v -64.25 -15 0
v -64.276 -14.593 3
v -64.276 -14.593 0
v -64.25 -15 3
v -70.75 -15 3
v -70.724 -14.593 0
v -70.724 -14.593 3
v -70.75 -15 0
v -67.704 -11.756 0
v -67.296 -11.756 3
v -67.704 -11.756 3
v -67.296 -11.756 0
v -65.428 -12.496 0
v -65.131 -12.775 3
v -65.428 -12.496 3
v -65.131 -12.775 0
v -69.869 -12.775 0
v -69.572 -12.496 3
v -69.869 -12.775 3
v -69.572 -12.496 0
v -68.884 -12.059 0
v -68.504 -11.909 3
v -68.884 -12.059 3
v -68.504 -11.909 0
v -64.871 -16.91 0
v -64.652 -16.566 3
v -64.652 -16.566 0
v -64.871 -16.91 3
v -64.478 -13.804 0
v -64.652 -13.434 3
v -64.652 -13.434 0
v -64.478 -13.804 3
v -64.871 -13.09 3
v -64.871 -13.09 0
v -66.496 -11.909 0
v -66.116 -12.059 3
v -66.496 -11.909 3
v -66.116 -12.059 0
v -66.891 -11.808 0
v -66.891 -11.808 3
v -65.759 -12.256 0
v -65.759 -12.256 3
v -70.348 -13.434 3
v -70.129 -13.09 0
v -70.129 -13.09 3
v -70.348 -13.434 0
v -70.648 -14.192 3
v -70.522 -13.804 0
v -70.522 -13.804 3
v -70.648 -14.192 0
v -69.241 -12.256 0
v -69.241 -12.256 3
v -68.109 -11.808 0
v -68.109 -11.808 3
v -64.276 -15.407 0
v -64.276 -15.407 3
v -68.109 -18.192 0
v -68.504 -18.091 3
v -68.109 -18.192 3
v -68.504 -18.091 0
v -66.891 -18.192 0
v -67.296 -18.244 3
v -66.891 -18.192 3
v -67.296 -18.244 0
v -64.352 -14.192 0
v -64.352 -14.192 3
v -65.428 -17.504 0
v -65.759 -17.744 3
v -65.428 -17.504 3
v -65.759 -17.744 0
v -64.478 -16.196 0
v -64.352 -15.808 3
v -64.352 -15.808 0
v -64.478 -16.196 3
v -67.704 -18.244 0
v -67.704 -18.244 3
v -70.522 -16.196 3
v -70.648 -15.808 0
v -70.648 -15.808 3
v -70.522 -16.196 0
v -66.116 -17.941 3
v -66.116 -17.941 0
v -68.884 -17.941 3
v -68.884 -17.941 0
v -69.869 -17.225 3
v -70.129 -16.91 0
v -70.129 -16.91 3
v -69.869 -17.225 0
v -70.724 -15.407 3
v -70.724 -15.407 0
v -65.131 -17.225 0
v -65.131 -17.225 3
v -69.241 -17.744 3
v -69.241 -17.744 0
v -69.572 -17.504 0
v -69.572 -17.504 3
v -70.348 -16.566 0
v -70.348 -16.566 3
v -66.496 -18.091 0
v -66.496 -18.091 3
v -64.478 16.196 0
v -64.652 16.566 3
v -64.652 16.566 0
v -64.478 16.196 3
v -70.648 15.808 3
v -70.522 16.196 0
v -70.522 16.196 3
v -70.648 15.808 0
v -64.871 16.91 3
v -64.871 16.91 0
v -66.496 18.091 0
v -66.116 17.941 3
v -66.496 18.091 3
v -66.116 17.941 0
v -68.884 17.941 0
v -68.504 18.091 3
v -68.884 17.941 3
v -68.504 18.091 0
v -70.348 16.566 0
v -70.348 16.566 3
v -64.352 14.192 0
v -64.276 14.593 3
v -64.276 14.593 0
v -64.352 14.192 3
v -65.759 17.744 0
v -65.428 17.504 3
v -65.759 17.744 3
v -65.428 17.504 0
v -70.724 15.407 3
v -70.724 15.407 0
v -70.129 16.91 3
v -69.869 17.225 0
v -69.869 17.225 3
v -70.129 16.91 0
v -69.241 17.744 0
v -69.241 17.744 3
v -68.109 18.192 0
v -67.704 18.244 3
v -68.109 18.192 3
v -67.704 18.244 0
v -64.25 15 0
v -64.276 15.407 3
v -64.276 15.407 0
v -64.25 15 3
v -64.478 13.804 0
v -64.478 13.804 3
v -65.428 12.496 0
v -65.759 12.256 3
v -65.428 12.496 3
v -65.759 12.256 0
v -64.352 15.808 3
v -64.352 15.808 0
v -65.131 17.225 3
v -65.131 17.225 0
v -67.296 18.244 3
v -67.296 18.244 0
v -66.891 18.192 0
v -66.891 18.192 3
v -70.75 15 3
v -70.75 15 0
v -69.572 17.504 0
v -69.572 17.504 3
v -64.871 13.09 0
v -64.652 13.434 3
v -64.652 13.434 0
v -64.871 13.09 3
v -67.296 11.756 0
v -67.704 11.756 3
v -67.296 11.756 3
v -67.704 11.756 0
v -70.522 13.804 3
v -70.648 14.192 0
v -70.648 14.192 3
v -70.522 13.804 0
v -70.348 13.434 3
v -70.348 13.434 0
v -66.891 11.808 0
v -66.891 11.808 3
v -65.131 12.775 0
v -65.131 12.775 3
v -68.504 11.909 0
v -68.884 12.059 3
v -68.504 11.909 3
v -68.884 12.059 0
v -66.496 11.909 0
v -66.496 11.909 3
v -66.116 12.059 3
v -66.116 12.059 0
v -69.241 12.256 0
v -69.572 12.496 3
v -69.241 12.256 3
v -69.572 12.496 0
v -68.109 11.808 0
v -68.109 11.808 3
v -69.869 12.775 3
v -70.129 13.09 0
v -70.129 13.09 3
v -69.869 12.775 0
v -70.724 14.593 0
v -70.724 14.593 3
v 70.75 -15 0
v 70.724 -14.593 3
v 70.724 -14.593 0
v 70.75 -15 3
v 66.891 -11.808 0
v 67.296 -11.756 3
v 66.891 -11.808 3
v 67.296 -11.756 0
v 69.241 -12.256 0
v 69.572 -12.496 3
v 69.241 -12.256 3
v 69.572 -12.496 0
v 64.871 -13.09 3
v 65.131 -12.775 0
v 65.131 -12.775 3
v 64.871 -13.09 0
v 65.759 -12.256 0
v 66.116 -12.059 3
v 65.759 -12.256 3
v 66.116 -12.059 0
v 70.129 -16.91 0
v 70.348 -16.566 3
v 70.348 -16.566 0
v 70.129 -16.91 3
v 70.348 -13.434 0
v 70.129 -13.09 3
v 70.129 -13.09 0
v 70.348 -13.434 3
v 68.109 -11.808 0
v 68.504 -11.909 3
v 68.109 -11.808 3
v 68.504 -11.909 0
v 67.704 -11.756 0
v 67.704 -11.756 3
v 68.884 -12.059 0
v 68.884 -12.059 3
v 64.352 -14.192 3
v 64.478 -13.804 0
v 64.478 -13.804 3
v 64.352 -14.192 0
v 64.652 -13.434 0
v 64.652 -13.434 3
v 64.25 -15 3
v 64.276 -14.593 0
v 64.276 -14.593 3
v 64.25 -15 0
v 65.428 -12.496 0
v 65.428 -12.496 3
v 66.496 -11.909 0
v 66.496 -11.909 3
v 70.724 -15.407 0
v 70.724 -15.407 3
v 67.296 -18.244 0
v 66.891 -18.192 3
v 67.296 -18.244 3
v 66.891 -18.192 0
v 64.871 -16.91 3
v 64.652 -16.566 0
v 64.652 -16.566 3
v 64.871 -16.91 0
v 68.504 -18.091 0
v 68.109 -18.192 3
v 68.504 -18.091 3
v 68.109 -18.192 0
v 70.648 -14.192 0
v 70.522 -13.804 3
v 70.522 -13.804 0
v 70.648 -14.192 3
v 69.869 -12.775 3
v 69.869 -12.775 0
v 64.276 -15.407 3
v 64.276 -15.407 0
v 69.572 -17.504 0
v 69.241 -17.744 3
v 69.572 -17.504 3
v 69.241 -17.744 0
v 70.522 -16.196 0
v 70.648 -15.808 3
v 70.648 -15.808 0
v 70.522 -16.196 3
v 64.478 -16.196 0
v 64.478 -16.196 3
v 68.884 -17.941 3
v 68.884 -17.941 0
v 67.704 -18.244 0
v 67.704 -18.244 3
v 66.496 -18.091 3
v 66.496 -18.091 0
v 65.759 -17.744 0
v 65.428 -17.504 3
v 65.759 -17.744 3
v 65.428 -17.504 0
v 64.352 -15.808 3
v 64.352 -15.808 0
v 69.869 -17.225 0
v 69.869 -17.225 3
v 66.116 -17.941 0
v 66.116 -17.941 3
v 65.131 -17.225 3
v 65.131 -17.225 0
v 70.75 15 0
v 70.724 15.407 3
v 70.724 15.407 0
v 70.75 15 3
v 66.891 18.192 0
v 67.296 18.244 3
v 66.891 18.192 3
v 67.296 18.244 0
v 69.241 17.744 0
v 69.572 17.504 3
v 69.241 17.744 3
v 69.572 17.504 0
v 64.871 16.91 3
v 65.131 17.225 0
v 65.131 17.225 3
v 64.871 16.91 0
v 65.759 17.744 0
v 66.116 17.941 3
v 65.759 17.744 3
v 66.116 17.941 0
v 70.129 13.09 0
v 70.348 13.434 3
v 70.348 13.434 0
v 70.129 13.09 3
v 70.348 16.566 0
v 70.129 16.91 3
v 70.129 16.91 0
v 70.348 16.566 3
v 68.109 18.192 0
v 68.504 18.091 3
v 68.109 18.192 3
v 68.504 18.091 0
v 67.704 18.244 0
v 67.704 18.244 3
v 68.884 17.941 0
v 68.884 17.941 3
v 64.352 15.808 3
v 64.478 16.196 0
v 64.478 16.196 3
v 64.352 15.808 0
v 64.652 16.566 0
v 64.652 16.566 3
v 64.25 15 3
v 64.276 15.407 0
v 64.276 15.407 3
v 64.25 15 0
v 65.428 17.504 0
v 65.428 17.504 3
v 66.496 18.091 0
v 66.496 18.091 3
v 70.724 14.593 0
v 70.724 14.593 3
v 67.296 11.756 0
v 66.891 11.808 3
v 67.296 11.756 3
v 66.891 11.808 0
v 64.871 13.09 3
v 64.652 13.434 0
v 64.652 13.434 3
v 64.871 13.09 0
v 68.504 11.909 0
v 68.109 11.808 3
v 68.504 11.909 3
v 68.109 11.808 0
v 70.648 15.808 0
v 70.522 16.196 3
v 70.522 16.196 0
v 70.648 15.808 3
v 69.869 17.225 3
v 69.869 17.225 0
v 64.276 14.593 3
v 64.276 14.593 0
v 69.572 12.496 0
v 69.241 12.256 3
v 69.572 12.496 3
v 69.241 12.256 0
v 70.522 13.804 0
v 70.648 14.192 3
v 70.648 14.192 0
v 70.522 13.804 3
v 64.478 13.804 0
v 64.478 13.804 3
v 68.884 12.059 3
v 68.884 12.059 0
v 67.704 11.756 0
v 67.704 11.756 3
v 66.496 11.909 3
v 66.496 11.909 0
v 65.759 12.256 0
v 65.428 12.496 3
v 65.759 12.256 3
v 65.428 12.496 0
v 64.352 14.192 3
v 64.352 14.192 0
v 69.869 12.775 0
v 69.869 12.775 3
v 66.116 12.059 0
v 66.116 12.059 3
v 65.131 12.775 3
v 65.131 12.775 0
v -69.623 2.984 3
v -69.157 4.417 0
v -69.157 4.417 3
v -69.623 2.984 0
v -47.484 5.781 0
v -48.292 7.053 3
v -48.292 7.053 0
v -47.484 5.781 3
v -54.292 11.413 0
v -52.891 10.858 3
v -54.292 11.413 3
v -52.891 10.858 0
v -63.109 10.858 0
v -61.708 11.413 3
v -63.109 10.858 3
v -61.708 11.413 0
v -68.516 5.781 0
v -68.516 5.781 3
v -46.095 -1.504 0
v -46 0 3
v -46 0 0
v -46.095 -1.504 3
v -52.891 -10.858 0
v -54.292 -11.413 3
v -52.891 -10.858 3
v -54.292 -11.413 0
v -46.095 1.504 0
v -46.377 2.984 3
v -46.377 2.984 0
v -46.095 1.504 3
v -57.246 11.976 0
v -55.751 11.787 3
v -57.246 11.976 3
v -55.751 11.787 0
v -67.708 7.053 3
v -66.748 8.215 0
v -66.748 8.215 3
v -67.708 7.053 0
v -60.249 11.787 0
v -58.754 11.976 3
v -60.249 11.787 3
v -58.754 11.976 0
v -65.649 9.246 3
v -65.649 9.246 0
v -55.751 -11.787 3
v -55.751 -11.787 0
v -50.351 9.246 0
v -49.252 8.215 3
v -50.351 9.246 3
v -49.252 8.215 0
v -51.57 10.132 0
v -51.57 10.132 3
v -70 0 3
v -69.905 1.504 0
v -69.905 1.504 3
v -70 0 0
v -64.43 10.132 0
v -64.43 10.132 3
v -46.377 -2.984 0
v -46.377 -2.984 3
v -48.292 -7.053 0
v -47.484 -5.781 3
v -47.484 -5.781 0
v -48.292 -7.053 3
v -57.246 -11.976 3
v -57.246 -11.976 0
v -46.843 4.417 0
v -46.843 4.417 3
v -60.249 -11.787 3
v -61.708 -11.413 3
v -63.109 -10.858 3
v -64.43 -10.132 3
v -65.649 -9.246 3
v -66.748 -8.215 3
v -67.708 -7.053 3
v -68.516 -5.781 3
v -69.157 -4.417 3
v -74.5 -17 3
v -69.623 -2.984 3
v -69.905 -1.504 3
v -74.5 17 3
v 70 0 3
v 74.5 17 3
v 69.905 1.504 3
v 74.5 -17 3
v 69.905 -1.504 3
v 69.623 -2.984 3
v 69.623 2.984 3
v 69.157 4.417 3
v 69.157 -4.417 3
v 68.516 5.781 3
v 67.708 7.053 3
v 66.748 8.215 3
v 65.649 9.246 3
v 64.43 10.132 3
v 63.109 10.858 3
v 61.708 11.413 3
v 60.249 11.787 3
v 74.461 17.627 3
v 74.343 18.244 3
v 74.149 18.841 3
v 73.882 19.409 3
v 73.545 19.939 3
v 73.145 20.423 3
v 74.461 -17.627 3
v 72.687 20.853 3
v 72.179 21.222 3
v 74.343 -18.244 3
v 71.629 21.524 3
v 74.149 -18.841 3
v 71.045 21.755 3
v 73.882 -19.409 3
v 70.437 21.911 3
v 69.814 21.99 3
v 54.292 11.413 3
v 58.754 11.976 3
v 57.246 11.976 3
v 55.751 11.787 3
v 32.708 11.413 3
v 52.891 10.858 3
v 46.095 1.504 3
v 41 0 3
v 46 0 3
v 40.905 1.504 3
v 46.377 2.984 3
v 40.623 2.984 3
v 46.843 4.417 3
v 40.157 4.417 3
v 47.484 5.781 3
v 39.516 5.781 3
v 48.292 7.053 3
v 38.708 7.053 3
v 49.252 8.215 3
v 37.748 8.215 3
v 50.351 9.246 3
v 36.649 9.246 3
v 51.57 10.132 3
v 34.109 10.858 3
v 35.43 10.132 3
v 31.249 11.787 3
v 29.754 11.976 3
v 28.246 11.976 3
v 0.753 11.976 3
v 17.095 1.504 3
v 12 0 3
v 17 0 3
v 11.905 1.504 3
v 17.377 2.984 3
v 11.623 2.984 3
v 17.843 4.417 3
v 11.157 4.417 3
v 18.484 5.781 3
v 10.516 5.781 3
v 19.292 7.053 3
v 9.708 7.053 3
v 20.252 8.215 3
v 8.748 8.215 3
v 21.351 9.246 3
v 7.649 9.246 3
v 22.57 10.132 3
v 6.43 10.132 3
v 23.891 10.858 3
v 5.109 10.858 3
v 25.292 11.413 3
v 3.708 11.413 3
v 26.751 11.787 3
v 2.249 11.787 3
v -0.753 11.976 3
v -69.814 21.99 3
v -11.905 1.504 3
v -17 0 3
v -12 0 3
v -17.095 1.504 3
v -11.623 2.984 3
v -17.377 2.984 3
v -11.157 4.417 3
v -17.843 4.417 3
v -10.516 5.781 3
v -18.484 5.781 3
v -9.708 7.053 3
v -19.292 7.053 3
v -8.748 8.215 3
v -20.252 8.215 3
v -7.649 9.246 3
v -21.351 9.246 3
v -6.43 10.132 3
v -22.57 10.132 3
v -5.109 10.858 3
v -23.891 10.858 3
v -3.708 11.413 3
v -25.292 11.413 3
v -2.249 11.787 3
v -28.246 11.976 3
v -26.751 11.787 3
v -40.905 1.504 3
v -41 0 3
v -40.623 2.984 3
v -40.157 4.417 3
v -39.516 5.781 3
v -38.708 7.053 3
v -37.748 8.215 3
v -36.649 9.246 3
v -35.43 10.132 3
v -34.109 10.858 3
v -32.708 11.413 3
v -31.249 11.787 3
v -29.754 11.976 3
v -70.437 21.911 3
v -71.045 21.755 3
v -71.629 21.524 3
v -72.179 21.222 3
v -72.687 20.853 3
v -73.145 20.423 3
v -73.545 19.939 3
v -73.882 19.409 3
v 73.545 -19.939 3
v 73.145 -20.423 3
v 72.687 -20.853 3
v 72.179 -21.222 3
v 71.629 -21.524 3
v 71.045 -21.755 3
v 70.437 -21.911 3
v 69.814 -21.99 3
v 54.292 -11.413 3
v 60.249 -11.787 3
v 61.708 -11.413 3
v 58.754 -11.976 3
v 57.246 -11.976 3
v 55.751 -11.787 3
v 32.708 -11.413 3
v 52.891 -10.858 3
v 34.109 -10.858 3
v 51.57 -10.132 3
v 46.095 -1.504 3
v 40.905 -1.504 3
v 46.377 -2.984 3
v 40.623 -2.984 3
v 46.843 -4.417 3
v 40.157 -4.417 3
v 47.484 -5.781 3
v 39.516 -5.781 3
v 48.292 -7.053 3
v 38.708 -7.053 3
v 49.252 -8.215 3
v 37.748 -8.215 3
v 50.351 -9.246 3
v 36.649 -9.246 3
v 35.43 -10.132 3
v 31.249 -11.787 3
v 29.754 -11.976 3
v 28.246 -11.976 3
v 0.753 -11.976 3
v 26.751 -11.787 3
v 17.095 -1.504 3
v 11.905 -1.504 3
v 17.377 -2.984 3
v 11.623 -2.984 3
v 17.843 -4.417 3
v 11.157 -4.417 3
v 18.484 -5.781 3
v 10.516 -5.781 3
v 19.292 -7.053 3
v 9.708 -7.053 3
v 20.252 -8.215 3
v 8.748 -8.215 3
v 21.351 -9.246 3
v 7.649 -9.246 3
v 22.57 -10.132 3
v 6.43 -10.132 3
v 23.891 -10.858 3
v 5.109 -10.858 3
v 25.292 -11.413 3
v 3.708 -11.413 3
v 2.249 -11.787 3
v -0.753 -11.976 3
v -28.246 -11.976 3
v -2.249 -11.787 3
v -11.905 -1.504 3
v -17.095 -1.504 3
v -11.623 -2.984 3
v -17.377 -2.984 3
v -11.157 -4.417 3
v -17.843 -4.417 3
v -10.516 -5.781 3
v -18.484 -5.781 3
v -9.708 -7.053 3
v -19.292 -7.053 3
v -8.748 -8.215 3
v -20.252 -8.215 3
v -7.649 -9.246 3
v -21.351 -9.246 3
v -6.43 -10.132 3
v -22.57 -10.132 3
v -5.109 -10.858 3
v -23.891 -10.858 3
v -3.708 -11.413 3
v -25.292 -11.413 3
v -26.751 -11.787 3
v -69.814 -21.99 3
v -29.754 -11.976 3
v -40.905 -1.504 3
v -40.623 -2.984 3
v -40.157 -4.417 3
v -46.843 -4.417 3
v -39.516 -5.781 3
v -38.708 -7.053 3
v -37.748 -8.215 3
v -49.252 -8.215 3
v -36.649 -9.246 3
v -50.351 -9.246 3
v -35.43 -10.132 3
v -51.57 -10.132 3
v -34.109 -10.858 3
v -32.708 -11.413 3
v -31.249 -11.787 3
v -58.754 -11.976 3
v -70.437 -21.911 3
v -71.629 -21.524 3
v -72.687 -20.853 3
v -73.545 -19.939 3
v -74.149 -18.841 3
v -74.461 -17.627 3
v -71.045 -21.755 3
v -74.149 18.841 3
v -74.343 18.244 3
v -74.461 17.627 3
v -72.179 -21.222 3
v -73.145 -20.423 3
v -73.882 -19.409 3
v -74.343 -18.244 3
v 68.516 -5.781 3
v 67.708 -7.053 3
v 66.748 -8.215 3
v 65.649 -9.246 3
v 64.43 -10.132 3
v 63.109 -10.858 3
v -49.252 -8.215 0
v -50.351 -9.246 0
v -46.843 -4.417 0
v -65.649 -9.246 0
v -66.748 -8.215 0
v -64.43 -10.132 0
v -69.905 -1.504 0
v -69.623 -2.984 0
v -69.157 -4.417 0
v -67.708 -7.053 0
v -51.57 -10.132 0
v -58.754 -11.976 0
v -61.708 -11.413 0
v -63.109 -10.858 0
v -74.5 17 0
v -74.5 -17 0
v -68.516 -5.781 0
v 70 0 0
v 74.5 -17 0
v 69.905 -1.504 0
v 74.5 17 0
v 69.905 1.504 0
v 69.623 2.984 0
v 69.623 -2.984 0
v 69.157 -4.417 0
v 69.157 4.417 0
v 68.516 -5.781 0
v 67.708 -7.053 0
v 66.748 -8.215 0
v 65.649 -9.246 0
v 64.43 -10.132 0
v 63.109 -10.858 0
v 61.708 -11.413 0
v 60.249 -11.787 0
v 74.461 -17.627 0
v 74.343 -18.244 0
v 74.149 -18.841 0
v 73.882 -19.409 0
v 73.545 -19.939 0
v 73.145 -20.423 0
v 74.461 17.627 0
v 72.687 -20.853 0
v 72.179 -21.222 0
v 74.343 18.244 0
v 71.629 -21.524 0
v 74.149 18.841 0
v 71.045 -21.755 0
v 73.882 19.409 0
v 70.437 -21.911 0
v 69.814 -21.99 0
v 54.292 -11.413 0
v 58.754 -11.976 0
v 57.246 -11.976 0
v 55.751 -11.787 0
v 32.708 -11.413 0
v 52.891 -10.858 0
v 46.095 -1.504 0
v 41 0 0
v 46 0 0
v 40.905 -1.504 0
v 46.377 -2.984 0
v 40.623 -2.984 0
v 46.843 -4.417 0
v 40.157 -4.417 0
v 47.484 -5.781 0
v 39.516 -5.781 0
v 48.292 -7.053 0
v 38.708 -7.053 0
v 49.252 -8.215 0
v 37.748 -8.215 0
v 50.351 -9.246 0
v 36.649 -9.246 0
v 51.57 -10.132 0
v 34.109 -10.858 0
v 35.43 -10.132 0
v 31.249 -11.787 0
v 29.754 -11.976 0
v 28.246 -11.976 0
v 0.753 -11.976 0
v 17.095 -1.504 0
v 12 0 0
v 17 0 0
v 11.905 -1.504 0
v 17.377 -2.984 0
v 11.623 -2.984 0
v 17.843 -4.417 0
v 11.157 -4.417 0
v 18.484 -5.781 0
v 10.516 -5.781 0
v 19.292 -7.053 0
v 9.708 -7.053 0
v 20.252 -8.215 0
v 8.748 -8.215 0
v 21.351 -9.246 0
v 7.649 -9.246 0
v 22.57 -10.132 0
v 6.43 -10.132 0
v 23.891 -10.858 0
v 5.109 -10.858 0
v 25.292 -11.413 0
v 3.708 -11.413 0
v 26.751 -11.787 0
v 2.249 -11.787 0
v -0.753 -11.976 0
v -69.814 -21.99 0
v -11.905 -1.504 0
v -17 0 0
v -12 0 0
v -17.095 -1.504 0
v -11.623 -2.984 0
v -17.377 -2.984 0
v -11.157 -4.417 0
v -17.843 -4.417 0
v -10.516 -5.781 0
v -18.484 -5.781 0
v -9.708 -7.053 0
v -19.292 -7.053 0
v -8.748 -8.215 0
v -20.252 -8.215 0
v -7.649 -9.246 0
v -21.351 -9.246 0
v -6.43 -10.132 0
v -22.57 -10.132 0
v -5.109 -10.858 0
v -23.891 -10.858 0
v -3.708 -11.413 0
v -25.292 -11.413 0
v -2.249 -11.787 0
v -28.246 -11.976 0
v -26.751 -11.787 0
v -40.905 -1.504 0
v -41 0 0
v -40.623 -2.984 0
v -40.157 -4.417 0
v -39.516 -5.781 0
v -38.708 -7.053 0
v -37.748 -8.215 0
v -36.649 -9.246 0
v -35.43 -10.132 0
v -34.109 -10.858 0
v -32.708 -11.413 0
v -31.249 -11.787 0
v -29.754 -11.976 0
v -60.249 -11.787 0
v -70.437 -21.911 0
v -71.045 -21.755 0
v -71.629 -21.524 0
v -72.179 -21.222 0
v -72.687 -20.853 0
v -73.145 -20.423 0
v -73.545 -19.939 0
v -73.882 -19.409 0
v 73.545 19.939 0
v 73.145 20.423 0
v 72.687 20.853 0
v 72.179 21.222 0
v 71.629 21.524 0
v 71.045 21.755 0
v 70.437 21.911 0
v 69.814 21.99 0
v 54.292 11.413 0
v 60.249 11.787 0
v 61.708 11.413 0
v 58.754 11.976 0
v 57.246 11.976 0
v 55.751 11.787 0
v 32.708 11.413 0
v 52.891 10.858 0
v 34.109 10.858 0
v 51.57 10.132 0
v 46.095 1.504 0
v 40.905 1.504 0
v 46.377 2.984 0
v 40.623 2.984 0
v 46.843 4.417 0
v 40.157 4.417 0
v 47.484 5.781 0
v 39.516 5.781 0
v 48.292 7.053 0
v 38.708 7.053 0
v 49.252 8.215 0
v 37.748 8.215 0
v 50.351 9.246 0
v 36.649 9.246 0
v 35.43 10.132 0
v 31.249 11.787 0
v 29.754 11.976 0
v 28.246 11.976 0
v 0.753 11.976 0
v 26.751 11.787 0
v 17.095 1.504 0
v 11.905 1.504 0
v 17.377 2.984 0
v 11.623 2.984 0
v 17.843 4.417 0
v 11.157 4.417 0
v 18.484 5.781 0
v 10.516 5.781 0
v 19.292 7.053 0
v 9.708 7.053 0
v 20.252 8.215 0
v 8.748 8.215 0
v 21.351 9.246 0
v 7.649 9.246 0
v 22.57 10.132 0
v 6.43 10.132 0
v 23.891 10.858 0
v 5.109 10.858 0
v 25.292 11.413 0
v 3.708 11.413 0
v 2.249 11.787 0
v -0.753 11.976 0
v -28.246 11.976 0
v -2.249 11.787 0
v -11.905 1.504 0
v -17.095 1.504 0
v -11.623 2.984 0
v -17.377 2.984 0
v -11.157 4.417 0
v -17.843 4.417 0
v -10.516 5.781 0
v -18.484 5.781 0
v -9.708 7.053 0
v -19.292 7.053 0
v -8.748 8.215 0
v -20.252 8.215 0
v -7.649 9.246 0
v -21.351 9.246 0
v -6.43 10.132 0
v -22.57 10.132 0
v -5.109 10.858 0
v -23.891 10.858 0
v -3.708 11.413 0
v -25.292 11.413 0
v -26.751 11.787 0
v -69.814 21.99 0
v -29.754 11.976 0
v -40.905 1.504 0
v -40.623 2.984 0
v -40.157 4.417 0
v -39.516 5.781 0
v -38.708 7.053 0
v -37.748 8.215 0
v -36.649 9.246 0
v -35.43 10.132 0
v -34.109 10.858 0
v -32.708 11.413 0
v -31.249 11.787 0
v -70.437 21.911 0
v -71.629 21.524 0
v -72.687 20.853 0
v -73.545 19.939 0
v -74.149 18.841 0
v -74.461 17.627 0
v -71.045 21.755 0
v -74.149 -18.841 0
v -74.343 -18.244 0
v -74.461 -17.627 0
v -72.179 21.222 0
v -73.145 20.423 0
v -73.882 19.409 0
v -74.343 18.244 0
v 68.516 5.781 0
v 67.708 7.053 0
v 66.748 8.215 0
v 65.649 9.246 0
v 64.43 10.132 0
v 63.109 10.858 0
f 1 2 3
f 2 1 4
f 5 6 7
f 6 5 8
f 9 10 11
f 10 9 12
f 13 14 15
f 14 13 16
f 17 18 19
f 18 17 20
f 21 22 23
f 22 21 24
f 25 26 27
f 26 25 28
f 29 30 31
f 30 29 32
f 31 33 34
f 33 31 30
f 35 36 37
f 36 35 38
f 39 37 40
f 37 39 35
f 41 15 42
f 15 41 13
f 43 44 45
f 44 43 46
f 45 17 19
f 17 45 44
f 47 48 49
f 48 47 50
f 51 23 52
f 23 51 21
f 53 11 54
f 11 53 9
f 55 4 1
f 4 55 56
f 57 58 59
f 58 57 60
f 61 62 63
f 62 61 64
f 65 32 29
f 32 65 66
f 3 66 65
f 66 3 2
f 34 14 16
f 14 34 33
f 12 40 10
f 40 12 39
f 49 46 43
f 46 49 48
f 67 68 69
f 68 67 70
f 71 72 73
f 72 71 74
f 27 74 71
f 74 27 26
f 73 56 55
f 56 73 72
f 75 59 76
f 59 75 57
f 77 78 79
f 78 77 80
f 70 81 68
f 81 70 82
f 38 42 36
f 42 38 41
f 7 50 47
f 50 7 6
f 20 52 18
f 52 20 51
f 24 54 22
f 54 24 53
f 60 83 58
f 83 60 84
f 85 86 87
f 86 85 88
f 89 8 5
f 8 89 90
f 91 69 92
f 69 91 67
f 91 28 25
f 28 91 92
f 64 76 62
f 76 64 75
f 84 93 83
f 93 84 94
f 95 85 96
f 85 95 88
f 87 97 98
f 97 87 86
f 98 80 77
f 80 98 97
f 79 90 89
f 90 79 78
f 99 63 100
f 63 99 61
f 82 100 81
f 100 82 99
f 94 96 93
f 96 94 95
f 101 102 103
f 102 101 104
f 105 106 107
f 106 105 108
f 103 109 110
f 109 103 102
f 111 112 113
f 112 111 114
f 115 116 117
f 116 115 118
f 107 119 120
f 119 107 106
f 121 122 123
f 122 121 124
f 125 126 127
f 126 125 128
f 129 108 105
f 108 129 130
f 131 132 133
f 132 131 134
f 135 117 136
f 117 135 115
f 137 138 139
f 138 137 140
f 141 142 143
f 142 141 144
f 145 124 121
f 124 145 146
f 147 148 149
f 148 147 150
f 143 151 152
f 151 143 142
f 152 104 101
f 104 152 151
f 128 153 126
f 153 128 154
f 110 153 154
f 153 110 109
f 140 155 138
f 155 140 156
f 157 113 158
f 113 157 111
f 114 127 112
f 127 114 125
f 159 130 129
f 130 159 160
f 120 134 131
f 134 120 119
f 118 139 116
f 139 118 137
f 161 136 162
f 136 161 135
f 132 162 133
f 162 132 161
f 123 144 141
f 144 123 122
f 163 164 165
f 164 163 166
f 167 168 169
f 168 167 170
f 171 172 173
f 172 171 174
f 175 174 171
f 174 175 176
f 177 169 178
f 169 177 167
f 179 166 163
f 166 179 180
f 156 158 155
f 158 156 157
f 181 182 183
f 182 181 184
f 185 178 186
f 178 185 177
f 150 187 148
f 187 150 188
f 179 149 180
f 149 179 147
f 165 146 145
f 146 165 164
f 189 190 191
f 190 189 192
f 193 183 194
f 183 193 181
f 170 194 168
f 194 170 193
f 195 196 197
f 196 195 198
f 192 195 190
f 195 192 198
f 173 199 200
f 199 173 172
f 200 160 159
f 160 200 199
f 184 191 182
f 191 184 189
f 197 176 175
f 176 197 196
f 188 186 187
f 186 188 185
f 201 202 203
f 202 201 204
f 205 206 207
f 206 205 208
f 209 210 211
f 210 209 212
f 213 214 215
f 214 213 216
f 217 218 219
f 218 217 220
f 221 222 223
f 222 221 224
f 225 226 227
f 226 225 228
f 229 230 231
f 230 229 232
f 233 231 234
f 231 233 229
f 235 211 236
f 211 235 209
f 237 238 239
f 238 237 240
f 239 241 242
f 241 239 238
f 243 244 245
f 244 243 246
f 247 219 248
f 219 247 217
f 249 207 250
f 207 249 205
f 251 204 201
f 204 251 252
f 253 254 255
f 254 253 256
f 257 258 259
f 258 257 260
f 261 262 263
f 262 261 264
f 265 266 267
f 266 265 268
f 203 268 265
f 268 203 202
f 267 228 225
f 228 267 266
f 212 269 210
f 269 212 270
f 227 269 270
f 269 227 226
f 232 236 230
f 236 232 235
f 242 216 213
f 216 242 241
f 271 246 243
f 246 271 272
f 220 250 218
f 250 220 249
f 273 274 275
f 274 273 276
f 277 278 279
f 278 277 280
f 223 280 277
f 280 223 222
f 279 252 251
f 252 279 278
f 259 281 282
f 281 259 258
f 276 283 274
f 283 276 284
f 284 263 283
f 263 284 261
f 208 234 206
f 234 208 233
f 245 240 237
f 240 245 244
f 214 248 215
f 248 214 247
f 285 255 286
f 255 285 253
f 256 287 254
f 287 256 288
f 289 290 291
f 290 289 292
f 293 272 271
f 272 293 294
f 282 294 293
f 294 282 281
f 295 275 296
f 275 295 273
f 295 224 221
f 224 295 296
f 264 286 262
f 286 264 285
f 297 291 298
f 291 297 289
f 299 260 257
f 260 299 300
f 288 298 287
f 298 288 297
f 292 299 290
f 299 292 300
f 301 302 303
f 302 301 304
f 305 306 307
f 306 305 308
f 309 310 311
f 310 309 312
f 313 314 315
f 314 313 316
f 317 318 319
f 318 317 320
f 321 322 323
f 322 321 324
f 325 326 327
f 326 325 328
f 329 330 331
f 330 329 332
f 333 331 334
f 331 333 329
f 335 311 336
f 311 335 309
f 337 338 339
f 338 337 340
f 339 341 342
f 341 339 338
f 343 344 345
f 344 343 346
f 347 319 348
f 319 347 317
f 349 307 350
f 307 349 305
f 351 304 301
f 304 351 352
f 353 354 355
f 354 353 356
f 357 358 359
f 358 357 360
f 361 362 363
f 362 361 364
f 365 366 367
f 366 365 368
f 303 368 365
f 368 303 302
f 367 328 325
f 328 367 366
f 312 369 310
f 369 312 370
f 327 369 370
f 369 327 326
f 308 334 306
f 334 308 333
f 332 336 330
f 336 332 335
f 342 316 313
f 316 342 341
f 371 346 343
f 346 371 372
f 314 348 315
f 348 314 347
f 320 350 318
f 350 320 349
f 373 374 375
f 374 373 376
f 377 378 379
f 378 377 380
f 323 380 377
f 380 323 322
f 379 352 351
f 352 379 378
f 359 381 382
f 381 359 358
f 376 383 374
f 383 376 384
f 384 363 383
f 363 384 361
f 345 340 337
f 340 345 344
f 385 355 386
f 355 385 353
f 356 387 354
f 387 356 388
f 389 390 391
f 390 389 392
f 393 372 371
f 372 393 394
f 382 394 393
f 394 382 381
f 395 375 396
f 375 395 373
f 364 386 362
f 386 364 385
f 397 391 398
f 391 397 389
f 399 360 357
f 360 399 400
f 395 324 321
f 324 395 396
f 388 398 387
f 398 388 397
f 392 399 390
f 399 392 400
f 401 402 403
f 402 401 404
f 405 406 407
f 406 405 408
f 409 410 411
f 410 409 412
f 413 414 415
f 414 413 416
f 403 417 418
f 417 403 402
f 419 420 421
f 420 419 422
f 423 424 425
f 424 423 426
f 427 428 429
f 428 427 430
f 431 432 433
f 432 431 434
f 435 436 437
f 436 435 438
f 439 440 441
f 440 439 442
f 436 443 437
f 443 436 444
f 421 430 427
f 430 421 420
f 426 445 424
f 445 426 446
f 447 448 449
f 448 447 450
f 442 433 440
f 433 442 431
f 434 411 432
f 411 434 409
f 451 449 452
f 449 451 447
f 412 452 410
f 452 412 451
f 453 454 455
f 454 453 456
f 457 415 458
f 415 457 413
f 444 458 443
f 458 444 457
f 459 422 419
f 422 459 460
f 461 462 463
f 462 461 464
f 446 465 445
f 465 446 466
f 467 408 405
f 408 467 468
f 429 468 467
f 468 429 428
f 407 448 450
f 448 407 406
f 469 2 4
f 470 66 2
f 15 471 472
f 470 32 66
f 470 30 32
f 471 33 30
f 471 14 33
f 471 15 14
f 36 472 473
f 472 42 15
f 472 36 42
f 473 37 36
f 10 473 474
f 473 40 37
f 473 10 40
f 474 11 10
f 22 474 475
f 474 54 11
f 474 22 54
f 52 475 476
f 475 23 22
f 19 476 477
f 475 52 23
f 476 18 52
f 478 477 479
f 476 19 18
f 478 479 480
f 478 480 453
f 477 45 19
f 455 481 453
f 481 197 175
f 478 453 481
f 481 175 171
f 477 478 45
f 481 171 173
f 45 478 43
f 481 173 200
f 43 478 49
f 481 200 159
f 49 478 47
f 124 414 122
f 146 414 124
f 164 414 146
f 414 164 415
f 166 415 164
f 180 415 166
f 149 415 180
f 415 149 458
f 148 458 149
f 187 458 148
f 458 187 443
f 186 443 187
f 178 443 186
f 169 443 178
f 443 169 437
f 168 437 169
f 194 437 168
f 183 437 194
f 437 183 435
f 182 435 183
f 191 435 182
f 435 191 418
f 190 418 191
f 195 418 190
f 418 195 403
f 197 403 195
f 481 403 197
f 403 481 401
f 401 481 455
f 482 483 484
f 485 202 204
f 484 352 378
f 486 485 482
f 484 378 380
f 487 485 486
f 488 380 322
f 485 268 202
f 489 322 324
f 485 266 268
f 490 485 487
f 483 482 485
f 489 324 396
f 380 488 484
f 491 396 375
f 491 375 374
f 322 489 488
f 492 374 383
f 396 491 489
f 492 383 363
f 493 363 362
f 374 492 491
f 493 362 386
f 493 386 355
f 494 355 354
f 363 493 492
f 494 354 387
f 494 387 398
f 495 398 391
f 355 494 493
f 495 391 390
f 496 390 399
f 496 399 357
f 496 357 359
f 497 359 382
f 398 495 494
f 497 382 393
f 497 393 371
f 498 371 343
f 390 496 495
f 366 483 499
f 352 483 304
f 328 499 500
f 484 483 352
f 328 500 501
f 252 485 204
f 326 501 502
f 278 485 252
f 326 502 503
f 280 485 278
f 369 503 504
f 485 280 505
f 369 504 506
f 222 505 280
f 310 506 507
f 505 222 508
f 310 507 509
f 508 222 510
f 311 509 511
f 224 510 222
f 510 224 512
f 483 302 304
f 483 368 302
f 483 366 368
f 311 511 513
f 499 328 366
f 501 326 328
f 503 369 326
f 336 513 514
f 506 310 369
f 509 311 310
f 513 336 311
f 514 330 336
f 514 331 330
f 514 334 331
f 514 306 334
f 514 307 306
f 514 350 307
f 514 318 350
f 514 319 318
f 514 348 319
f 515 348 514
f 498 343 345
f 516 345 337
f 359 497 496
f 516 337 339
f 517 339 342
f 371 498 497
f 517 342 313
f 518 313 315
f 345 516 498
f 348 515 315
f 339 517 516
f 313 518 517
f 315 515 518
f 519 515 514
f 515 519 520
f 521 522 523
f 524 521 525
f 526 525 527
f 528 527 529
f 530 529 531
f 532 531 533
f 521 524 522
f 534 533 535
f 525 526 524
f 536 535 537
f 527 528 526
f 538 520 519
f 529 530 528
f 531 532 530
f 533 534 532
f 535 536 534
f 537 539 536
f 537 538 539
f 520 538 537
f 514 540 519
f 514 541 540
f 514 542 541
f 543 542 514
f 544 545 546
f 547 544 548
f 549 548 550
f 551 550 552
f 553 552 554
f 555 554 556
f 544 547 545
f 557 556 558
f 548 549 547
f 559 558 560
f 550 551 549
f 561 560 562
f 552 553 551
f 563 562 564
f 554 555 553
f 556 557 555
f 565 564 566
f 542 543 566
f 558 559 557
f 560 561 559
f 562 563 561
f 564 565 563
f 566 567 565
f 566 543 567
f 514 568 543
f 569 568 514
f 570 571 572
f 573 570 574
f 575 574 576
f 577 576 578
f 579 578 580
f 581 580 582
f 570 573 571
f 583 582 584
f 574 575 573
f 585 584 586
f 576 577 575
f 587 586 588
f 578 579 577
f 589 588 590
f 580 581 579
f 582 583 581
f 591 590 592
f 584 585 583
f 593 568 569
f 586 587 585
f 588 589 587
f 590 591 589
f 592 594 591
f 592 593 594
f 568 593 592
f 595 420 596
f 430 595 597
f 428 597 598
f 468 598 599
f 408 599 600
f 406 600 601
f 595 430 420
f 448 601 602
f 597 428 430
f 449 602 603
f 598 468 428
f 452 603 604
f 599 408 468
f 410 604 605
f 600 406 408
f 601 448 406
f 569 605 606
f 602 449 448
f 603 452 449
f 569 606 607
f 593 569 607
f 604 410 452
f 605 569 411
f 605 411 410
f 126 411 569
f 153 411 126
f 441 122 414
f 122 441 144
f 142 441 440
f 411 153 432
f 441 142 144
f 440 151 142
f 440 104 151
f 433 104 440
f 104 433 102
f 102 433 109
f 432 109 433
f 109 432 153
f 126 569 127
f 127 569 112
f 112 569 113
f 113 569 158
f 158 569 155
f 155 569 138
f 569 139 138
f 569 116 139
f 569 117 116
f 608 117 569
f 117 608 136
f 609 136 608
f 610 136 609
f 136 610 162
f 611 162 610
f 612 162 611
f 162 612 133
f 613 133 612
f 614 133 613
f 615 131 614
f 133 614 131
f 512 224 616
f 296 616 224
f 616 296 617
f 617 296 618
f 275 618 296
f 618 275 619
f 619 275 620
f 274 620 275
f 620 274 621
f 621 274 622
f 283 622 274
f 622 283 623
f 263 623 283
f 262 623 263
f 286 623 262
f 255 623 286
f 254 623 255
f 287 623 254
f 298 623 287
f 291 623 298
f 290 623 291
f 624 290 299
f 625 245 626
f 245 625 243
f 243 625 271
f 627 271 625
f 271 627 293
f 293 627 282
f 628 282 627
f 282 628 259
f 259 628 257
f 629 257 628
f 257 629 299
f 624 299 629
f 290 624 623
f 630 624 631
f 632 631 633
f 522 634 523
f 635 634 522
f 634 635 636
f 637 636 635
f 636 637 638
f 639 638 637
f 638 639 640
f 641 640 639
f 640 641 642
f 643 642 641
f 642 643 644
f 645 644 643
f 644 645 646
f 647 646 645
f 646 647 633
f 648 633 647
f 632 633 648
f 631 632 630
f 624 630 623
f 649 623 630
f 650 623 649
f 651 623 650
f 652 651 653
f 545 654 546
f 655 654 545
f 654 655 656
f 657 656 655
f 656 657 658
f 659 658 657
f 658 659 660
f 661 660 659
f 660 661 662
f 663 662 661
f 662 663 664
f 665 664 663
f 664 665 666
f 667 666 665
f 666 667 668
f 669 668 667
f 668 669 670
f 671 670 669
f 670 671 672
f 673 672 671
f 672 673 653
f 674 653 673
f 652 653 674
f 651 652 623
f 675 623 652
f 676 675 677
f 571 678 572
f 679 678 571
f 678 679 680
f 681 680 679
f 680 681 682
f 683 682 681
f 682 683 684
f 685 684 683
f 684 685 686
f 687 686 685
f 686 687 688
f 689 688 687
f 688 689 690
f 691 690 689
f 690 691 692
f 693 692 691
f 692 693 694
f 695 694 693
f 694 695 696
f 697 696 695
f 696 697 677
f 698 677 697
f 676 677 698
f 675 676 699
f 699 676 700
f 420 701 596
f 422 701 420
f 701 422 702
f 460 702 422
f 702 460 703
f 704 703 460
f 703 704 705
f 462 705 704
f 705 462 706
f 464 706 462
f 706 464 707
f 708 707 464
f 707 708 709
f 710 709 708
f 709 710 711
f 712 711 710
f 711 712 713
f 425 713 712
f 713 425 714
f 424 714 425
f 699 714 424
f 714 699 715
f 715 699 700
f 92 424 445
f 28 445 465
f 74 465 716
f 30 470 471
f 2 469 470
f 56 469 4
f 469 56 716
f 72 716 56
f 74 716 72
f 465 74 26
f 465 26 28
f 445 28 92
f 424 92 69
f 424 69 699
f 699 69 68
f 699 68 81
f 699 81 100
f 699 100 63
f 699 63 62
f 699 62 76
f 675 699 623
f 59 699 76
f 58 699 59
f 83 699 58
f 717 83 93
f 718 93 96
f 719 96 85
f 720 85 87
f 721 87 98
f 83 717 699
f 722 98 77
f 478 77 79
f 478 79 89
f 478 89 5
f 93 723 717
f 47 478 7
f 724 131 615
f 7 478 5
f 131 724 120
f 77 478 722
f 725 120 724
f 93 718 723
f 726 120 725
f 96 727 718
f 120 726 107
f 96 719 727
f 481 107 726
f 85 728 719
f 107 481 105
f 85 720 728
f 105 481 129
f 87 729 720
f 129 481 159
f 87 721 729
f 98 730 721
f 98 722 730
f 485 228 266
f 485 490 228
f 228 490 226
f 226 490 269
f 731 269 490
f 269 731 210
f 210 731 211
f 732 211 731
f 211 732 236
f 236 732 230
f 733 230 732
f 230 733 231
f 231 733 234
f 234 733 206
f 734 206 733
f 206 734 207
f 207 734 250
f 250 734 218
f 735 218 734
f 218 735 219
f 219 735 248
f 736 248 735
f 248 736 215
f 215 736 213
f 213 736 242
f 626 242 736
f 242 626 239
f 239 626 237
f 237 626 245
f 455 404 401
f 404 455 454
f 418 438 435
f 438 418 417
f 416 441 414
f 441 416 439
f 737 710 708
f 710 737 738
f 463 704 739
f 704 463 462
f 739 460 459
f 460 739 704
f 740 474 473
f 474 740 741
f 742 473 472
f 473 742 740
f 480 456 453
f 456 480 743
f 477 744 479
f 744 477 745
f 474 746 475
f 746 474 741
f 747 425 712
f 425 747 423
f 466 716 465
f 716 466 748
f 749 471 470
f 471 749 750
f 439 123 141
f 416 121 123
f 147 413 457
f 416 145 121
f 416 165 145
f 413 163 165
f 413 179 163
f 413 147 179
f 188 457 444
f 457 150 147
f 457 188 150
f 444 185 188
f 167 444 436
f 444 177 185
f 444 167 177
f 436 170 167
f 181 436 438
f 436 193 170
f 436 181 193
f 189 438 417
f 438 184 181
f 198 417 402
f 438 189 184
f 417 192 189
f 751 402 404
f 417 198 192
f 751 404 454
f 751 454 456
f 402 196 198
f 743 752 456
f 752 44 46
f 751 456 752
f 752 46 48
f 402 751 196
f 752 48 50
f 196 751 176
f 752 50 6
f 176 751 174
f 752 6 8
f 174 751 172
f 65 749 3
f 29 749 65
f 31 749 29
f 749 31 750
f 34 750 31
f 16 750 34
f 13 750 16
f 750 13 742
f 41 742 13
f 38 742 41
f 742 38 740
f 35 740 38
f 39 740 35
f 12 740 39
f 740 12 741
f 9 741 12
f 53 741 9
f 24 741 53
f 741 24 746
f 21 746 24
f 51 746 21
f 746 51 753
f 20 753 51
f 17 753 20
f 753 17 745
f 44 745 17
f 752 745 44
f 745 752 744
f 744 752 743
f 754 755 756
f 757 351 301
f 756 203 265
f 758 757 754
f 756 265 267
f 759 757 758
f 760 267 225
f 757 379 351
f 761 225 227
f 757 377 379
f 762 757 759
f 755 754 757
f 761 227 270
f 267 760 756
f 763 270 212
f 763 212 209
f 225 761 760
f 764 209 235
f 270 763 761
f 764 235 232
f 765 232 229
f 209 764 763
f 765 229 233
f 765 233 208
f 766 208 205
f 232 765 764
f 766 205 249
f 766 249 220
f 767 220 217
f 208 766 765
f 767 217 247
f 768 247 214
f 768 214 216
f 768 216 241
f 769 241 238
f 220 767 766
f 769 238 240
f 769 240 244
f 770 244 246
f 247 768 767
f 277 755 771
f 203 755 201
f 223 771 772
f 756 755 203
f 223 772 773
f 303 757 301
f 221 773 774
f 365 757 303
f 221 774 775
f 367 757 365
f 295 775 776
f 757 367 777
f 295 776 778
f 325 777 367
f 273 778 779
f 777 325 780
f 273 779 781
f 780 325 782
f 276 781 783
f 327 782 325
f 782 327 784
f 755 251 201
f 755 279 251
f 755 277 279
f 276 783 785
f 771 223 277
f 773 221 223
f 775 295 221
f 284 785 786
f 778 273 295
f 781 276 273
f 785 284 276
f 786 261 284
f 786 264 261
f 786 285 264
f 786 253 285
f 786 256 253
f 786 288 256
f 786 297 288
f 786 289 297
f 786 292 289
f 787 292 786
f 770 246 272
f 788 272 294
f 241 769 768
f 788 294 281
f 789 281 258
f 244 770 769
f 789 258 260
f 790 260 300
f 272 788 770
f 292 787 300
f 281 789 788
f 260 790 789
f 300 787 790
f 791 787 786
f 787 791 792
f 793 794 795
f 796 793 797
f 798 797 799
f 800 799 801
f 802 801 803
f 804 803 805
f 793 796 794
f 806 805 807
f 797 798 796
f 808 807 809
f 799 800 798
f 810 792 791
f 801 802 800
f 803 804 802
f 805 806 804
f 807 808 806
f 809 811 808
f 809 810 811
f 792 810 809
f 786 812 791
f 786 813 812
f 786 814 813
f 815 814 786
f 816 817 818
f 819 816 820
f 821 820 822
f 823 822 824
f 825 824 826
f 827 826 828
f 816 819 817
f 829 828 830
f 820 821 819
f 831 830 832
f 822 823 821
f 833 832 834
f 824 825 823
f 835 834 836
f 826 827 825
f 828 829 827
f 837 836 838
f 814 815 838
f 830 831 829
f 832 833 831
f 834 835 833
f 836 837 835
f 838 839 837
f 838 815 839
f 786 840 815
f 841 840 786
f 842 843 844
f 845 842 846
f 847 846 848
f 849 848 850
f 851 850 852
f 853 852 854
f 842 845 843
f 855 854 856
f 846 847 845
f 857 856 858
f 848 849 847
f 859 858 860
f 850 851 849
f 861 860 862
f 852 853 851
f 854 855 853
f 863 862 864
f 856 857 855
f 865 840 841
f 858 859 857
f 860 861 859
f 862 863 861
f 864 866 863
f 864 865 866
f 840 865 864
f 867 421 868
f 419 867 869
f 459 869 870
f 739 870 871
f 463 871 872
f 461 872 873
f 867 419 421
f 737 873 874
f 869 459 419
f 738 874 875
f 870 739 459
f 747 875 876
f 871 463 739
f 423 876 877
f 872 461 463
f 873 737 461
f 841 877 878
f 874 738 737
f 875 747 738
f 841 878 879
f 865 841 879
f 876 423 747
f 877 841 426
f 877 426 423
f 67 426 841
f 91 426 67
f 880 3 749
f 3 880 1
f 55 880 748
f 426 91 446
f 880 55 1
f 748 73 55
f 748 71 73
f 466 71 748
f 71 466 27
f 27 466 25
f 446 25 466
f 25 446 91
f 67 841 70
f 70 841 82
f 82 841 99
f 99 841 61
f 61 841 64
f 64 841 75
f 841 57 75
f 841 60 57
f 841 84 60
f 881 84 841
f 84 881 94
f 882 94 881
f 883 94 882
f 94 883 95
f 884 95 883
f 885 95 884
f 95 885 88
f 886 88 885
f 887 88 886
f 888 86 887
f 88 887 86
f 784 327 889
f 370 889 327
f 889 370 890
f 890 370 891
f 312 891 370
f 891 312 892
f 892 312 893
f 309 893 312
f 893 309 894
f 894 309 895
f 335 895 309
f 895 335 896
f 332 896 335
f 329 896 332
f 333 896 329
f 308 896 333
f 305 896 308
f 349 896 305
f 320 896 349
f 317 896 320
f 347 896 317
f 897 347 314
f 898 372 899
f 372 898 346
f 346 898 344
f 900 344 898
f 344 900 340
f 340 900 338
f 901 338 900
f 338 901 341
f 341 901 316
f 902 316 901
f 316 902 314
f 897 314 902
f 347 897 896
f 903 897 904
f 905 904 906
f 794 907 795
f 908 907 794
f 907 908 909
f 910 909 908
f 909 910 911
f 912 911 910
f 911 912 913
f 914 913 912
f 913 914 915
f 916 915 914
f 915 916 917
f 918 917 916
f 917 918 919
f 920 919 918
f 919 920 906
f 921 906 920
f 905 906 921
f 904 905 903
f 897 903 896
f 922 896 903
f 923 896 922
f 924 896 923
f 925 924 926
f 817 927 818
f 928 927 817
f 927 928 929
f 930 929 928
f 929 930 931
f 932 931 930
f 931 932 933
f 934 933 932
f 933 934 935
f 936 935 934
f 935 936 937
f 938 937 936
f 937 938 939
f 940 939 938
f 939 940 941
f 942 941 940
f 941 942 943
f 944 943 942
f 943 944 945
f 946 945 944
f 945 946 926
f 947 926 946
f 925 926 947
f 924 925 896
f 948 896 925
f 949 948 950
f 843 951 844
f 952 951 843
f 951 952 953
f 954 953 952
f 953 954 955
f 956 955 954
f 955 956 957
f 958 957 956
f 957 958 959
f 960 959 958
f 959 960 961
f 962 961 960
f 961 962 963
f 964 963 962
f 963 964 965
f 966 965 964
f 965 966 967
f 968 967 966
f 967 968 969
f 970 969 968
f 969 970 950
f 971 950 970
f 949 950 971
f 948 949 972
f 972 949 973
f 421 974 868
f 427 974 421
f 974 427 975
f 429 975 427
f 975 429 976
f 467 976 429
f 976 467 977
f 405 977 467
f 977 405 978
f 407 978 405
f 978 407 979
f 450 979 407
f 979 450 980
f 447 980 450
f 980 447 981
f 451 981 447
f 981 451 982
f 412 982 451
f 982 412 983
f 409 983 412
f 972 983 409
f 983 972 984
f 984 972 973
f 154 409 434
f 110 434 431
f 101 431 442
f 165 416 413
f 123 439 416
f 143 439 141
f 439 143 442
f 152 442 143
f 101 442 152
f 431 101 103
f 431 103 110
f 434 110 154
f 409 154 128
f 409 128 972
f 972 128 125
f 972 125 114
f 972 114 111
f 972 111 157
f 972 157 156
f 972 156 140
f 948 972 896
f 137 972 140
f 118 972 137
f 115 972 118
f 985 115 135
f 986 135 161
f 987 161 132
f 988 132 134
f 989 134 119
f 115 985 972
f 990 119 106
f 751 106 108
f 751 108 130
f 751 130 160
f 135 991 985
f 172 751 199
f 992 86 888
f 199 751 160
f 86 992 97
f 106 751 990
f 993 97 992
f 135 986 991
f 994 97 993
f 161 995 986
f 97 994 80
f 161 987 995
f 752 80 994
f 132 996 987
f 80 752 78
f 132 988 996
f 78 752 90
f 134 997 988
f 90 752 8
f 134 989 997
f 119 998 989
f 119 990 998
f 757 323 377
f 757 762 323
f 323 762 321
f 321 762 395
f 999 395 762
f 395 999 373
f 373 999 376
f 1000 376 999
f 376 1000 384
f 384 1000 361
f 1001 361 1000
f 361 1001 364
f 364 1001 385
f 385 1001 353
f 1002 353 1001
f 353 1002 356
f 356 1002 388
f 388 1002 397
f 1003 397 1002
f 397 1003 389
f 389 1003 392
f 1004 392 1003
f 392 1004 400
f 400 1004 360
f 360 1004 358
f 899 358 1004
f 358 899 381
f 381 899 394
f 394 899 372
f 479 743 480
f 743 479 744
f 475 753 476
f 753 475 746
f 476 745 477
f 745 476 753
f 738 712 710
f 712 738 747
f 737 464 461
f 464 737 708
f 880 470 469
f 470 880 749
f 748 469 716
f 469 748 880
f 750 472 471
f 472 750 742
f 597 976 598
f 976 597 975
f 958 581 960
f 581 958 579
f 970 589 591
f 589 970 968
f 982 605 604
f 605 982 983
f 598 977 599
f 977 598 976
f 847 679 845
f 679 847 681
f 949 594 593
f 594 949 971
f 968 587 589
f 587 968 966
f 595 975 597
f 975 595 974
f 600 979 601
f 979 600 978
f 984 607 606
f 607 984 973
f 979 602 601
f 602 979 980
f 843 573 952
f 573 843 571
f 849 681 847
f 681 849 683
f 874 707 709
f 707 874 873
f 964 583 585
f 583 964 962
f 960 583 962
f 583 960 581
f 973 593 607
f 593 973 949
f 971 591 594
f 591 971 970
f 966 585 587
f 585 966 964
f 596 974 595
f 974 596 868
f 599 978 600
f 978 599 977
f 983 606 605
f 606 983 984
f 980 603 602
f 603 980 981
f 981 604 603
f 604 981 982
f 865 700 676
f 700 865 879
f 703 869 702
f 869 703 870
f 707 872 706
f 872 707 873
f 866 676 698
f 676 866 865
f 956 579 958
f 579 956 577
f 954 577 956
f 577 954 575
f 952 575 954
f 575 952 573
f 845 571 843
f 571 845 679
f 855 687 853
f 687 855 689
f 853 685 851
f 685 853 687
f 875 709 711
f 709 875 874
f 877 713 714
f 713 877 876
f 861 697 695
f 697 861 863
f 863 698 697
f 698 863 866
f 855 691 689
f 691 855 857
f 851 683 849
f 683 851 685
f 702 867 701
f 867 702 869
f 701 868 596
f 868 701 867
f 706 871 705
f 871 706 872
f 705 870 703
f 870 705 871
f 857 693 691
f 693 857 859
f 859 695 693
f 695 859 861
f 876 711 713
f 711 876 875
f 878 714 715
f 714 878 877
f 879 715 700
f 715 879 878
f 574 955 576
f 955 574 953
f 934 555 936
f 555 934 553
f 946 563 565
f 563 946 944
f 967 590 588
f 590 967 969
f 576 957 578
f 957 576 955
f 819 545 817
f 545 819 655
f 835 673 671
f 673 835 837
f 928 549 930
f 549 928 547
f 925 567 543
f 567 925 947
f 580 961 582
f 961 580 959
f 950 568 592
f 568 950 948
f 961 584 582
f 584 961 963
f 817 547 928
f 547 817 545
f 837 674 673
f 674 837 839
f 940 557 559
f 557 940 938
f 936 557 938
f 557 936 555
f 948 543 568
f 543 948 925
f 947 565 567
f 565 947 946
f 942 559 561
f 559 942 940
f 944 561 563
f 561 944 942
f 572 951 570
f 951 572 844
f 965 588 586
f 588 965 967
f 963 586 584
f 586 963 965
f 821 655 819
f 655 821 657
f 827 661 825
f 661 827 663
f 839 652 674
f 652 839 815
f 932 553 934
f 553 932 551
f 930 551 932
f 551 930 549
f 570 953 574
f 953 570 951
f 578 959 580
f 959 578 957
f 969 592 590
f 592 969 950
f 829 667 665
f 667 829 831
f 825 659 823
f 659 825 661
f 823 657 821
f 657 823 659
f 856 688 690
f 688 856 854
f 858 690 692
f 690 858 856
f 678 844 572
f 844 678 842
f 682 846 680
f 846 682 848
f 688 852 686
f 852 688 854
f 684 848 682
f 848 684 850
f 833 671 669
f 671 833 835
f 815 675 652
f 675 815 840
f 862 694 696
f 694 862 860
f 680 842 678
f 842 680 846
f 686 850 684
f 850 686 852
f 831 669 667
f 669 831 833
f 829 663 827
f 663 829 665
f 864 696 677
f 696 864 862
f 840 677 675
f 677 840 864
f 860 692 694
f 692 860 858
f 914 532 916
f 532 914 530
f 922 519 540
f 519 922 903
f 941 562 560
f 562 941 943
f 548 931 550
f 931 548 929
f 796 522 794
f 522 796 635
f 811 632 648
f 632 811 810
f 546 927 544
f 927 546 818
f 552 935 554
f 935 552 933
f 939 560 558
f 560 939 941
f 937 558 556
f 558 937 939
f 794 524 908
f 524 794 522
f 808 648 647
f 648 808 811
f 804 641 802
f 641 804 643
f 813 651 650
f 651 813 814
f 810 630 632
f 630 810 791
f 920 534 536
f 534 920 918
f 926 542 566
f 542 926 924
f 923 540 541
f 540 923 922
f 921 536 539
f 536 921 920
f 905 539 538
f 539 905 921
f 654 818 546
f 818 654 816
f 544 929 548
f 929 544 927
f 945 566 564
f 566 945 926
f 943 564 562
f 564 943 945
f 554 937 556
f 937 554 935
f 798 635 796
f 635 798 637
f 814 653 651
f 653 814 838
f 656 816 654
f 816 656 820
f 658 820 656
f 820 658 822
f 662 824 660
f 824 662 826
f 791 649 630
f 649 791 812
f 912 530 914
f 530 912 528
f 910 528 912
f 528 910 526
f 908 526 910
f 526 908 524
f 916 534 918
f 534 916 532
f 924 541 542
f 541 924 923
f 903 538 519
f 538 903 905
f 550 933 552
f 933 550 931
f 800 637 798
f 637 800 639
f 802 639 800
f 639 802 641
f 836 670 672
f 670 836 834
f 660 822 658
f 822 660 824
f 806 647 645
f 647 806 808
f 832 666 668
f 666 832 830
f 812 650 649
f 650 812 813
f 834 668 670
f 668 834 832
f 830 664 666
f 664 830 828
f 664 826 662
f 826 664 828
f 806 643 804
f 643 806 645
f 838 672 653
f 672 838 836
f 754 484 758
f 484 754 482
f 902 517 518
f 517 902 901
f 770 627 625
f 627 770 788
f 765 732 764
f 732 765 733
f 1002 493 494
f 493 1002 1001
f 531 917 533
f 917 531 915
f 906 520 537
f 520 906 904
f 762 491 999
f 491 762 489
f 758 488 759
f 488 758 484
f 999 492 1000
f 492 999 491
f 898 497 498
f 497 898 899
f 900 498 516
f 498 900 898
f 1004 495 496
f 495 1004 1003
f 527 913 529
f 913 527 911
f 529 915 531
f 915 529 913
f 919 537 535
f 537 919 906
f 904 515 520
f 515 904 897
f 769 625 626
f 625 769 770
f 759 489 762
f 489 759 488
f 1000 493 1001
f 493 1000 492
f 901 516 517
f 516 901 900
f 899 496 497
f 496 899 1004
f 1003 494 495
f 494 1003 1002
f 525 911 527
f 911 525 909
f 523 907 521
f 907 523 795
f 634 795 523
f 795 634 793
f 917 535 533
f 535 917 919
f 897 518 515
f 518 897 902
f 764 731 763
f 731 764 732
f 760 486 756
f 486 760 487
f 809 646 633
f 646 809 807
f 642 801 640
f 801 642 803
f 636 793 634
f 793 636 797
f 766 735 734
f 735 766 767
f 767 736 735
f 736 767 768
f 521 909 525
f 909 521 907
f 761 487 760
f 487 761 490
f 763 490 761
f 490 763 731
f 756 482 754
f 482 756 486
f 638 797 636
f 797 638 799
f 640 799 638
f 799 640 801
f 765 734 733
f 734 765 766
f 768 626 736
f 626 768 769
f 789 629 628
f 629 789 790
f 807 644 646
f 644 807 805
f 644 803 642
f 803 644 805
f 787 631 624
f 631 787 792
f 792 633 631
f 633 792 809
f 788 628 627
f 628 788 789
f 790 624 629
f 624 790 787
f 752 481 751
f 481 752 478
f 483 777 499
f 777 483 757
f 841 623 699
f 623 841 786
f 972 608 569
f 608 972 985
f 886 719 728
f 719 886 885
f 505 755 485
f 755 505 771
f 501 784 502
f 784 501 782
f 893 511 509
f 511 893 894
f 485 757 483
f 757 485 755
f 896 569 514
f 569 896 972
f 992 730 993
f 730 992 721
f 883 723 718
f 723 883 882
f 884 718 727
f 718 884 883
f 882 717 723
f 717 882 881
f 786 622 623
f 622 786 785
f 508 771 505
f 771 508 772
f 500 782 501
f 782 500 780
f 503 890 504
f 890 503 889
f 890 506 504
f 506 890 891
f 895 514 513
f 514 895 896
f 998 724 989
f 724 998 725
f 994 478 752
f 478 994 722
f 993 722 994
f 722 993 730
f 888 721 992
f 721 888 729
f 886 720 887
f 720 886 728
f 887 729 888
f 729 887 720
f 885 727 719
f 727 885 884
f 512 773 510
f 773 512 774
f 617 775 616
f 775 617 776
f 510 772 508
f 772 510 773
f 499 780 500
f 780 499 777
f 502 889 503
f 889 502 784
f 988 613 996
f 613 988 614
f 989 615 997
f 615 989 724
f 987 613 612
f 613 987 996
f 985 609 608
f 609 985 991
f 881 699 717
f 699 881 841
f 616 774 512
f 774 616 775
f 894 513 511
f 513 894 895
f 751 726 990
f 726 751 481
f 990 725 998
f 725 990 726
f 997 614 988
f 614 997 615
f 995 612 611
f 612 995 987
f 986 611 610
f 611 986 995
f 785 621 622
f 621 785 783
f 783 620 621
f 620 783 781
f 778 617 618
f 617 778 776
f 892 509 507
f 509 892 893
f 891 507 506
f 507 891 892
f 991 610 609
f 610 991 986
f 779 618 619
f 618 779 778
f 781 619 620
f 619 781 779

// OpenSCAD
$fn = 50;


difference() {
	union() {
		hull() {
			translate(v = [-69.5000000000, 17.0000000000, 0]) {
				cylinder(h = 3, r = 5);
			}
			translate(v = [69.5000000000, 17.0000000000, 0]) {
				cylinder(h = 3, r = 5);
			}
			translate(v = [-69.5000000000, -17.0000000000, 0]) {
				cylinder(h = 3, r = 5);
			}
			translate(v = [69.5000000000, -17.0000000000, 0]) {
				cylinder(h = 3, r = 5);
			}
		}
	}
	union() {
		#translate(v = [-67.5000000000, -15.0000000000, -100.0000000000]) {
			cylinder(h = 200, r = 3.2500000000);
		}
		#translate(v = [-67.5000000000, 15.0000000000, -100.0000000000]) {
			cylinder(h = 200, r = 3.2500000000);
		}
		#translate(v = [67.5000000000, -15.0000000000, -100.0000000000]) {
			cylinder(h = 200, r = 3.2500000000);
		}
		#translate(v = [67.5000000000, 15.0000000000, -100.0000000000]) {
			cylinder(h = 200, r = 3.2500000000);
		}
		#translate(v = [-58.0000000000, 0, 0]) {
			cylinder(h = 3, r = 12.0000000000);
		}
		#translate(v = [-29.0000000000, 0, 0]) {
			cylinder(h = 3, r = 12.0000000000);
		}
		#cylinder(h = 3, r = 12.0000000000);
		#translate(v = [29.0000000000, 0, 0]) {
			cylinder(h = 3, r = 12.0000000000);
		}
		#translate(v = [58.0000000000, 0, 0]) {
			cylinder(h = 3, r = 12.0000000000);
		}
	}
}
